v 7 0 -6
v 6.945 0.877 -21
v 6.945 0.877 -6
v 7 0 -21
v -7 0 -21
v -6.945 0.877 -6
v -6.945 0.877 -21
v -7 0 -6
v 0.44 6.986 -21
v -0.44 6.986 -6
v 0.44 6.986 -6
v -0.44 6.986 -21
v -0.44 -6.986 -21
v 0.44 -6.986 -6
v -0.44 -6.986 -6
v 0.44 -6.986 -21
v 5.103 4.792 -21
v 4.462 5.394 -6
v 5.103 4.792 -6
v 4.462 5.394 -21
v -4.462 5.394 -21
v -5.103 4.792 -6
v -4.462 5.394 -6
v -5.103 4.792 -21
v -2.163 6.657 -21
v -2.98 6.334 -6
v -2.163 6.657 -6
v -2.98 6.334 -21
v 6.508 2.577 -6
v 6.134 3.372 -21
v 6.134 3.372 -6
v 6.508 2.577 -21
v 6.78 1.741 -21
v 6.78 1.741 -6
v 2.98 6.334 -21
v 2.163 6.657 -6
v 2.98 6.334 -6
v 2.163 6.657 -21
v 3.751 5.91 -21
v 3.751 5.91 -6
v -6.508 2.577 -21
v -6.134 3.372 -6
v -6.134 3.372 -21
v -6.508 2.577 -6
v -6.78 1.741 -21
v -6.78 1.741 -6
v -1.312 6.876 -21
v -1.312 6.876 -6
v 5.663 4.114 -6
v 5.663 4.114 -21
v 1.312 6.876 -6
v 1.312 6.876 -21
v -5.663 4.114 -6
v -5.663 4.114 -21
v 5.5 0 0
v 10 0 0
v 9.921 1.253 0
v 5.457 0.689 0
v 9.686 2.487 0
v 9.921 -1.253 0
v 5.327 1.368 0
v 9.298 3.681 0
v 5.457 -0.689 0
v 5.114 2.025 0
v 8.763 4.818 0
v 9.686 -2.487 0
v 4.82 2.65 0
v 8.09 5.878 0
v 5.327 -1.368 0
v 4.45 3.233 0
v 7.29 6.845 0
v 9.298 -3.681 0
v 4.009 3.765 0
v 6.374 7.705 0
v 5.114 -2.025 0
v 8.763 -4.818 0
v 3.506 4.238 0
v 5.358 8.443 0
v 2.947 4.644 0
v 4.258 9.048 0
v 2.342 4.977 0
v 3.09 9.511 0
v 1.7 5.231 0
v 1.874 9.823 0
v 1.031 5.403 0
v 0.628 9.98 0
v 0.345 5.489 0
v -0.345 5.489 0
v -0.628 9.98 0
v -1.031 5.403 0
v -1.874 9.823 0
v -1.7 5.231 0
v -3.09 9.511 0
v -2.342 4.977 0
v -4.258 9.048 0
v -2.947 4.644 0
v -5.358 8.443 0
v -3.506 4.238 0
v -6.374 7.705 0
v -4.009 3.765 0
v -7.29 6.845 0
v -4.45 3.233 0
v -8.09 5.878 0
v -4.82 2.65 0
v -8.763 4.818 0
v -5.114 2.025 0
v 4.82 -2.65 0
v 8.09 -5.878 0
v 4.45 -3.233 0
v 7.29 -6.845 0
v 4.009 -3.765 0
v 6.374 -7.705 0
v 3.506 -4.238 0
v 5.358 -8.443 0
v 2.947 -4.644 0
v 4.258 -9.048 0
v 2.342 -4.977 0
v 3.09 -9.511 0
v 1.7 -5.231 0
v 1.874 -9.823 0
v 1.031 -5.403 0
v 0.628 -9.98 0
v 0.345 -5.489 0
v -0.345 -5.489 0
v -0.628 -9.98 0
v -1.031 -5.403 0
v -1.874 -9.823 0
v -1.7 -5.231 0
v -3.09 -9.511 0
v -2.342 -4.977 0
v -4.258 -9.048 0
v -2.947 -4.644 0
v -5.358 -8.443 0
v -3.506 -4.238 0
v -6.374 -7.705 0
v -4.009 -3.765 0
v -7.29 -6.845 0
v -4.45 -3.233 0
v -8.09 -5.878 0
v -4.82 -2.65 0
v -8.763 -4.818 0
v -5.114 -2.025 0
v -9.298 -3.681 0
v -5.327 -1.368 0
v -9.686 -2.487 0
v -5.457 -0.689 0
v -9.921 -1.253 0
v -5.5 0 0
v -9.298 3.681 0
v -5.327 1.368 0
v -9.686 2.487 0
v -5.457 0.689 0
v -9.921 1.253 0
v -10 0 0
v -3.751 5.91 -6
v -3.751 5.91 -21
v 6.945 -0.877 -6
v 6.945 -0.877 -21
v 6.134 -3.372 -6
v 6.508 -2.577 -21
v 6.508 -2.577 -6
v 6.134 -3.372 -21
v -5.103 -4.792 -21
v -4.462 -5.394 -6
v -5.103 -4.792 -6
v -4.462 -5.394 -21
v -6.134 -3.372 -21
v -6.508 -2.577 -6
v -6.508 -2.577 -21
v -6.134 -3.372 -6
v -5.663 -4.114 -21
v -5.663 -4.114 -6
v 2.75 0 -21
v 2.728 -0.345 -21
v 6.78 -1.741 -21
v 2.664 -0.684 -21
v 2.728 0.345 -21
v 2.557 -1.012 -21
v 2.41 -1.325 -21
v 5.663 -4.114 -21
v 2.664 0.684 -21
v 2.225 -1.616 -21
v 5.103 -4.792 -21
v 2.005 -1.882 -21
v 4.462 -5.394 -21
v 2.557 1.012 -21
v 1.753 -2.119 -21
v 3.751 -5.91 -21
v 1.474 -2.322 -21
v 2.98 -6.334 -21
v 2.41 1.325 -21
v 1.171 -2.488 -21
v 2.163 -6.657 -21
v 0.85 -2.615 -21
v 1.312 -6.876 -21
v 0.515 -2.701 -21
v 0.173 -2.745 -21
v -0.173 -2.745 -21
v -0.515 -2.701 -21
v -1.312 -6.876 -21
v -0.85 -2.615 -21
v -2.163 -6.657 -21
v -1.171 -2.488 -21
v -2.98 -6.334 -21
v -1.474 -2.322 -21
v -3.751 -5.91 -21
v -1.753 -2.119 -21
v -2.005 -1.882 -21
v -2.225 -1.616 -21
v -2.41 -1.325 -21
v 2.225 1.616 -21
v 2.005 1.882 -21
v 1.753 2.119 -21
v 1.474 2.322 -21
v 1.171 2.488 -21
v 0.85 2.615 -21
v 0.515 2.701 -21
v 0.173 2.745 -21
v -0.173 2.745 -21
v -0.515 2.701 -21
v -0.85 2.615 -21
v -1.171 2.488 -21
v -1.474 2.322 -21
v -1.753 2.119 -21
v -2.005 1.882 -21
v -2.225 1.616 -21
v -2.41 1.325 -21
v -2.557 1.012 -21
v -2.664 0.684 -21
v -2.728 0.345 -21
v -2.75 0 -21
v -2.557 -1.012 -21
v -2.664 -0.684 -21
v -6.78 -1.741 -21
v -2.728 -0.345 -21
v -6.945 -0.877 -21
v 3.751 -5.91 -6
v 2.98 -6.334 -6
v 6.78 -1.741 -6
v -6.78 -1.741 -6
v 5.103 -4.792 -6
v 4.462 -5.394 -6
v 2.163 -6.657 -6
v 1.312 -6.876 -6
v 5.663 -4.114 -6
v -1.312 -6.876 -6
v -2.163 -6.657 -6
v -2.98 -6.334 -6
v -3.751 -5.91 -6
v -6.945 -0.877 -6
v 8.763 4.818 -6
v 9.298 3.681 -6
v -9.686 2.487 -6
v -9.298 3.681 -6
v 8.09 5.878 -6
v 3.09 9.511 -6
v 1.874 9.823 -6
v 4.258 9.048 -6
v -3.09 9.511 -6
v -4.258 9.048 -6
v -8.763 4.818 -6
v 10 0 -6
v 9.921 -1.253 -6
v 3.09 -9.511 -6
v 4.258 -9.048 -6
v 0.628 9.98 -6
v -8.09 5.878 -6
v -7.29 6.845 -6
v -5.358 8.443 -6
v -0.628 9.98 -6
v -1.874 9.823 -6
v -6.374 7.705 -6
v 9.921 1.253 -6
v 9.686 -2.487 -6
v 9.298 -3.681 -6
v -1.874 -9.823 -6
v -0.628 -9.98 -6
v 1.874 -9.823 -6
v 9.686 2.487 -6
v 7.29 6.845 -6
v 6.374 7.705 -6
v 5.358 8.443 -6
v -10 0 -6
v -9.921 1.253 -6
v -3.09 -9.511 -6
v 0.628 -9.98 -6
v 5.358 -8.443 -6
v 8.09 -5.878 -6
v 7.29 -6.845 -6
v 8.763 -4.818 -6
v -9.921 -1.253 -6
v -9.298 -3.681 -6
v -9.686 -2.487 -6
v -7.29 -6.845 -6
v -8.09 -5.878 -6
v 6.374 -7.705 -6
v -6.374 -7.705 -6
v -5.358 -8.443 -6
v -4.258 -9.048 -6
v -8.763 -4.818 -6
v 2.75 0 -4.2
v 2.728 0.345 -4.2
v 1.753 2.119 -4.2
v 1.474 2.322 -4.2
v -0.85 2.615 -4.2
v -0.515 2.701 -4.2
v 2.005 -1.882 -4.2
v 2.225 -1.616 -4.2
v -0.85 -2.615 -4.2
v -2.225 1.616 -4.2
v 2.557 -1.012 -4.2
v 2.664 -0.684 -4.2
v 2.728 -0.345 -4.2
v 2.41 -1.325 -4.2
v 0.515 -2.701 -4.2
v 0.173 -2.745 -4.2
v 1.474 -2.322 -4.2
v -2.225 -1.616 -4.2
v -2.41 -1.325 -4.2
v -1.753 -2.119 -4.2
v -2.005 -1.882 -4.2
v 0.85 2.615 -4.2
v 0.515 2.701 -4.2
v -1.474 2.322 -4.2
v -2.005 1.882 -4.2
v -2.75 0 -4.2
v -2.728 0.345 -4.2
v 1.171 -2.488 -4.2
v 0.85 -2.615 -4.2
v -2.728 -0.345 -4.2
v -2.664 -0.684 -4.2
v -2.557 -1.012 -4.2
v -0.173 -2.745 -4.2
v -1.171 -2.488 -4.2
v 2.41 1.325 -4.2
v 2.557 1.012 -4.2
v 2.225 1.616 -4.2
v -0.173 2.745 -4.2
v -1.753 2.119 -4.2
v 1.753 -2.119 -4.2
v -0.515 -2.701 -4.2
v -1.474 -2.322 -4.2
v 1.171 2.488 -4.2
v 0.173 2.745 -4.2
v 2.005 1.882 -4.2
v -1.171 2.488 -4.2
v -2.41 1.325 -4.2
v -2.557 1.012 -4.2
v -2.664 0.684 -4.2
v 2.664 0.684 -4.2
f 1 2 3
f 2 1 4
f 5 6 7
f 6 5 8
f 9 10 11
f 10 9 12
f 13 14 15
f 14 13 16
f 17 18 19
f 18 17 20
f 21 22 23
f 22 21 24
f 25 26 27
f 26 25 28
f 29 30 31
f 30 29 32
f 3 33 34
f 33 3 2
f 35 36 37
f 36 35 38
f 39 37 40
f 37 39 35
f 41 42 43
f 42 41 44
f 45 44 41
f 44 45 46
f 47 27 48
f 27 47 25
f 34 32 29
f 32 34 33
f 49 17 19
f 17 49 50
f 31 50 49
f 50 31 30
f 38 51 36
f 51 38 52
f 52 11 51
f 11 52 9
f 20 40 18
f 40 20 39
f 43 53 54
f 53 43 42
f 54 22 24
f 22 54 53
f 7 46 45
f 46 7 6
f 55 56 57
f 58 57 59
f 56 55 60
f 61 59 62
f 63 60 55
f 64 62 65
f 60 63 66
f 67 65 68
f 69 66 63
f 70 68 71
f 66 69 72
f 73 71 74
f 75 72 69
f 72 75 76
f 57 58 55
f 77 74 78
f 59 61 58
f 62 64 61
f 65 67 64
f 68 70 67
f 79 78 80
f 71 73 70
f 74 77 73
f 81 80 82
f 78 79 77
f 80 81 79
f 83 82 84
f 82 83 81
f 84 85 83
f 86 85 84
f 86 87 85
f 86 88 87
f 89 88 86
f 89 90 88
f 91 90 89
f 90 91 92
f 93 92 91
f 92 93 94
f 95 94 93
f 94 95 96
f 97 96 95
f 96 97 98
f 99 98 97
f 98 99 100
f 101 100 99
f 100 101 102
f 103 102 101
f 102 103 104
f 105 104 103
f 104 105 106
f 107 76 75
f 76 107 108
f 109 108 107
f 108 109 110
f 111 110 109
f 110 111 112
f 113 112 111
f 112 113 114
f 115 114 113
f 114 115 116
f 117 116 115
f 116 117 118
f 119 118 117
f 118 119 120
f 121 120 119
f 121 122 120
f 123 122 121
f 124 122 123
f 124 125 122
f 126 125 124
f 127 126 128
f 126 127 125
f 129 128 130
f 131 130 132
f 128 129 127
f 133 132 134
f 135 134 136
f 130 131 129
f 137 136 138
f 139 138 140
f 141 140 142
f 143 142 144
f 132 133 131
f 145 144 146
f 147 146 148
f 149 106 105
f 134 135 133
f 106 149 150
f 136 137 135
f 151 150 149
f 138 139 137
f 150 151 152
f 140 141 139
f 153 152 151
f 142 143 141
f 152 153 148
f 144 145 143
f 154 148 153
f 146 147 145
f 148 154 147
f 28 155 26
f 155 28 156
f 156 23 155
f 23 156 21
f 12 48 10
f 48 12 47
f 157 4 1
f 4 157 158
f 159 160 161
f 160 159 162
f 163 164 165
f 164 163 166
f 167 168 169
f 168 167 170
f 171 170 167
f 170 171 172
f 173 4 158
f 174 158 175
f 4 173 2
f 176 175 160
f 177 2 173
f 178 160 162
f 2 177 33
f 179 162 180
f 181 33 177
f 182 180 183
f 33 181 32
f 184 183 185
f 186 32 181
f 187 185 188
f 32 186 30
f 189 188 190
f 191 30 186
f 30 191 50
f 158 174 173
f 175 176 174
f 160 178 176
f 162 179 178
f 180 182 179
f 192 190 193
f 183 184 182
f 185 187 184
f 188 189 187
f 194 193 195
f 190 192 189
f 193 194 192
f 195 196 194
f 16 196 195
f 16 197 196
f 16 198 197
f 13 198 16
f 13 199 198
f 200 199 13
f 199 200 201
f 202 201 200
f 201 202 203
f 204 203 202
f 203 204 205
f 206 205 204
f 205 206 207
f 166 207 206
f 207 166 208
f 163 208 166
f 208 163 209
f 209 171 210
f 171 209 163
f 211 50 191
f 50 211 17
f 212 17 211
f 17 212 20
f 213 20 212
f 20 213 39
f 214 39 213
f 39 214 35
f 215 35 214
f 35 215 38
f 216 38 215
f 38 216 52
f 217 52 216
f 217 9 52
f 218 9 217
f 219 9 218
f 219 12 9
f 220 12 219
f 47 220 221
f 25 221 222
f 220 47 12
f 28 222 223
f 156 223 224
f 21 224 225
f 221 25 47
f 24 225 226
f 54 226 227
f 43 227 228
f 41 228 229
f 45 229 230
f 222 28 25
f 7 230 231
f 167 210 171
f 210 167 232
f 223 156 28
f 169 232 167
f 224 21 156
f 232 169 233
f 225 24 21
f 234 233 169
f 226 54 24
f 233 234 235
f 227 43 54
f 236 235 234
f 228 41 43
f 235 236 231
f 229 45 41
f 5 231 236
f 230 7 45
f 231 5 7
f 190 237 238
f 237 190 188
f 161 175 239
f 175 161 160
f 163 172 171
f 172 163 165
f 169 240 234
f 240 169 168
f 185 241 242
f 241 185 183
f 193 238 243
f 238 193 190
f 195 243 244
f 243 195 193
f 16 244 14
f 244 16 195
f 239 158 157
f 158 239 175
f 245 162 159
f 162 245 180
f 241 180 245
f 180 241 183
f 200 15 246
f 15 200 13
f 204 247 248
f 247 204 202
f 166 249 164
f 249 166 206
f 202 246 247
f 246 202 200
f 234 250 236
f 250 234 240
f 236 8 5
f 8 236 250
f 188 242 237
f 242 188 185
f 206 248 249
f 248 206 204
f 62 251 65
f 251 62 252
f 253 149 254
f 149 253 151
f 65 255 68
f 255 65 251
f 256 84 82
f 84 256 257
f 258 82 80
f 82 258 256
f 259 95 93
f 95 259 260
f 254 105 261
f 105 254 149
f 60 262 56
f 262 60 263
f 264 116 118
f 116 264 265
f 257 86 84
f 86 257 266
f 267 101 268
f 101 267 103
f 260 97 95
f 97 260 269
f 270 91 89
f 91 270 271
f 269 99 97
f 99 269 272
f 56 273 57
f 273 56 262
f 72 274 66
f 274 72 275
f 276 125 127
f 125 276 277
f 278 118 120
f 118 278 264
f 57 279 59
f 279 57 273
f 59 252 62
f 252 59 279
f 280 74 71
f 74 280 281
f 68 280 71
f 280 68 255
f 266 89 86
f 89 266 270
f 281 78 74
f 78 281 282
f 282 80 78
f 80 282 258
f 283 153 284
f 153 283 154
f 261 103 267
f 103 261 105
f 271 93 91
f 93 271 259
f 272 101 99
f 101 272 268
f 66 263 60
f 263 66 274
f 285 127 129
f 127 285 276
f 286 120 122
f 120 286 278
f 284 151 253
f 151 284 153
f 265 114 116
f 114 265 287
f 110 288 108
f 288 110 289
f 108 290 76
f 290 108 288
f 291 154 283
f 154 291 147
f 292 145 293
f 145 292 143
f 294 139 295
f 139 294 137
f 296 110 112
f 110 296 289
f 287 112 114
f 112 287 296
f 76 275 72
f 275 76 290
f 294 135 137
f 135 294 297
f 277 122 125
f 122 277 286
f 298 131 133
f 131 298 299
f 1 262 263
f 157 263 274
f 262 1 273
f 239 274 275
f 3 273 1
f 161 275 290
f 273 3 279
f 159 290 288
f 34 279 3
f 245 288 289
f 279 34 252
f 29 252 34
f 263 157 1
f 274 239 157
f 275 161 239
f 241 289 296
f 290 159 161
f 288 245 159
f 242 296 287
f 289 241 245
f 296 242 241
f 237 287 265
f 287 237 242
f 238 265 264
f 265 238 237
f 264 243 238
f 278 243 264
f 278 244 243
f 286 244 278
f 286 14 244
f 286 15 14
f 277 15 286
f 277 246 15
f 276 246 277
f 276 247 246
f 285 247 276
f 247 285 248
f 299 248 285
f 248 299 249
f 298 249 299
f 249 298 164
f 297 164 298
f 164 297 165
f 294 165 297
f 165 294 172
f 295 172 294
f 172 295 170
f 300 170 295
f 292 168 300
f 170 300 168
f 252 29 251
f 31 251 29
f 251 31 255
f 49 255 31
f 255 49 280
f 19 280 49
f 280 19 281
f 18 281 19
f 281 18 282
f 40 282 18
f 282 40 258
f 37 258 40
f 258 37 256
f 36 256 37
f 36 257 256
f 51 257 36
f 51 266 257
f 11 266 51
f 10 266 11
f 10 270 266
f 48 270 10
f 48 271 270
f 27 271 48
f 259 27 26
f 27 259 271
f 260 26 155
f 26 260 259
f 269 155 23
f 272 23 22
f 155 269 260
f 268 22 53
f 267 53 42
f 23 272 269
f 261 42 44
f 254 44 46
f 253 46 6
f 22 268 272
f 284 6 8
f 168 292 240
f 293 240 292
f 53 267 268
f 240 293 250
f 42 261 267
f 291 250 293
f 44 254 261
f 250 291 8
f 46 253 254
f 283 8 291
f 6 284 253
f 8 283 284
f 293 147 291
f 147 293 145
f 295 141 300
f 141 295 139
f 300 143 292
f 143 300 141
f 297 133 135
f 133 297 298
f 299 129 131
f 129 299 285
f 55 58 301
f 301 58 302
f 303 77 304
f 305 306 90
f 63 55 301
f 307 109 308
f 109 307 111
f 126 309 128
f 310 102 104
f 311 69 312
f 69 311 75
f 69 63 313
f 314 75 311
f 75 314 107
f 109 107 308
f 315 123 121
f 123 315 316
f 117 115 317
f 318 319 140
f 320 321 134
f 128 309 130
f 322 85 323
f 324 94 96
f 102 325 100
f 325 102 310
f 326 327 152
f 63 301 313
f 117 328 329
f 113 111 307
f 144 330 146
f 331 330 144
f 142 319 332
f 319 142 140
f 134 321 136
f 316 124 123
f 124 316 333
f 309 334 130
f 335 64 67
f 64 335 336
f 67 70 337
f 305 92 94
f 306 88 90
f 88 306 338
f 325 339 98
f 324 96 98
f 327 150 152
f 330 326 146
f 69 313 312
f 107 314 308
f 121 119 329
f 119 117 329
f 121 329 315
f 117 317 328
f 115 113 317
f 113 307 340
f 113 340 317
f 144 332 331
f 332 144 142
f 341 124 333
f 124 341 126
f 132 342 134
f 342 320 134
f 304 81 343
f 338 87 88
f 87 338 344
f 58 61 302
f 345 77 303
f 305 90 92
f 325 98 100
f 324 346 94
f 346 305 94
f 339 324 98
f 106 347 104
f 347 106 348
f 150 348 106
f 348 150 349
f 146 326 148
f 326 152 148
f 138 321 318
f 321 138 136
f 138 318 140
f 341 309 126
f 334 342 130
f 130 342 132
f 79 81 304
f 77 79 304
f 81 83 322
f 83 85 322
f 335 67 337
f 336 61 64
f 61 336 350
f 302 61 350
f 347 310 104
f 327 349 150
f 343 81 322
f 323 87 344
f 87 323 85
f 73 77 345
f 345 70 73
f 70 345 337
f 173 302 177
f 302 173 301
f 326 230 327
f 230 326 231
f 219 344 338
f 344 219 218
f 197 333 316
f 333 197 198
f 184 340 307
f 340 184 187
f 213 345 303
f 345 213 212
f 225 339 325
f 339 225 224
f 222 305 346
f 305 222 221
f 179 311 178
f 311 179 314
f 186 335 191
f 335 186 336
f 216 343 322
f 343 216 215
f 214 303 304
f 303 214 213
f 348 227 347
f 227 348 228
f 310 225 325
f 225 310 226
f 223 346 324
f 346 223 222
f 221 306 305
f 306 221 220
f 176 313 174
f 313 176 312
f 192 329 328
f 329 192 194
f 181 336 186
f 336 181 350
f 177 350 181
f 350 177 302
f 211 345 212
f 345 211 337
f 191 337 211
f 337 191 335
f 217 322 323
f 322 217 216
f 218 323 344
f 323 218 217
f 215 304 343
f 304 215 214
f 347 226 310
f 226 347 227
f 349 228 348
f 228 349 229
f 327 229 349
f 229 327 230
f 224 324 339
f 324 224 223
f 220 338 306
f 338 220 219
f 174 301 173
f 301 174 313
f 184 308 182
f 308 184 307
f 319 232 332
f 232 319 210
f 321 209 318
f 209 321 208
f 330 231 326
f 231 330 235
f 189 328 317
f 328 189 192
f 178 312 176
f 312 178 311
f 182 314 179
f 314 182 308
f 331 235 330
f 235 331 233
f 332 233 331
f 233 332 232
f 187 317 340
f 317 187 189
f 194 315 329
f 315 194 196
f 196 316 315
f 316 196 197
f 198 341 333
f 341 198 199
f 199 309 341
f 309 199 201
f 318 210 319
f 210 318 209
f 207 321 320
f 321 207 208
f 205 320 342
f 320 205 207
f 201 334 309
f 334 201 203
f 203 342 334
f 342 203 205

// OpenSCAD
$fn = 50;


difference() {
	union() {
		translate(v = [0, 0, -21.0000000000]) {
			cylinder(h = 21, r = 7.0000000000);
		}
		translate(v = [0, 0, -6.0000000000]) {
			cylinder(h = 6, r = 10.0000000000);
		}
	}
	union() {
		translate(v = [0, 0, 0]) {
			rotate(a = [0, 0, 0]) {
				difference() {
					union() {
						#translate(v = [0, 0, -21.0000000000]) {
							cylinder(h = 21, r = 2.2500000000);
						}
						#translate(v = [0, 0, -4.2000000000]) {
							cylinder(h = 4.2000000000, r = 7.0000000000, r1 = 2.7500000000, r2 = 5.5000000000);
						}
						#translate(v = [0, 0, -21.0000000000]) {
							cylinder(h = 21, r = 2.7500000000);
						}
						#translate(v = [0, 0, -21.0000000000]) {
							cylinder(h = 21, r = 2.2500000000);
						}
					}
					union();
				}
			}
		}
	}
}
